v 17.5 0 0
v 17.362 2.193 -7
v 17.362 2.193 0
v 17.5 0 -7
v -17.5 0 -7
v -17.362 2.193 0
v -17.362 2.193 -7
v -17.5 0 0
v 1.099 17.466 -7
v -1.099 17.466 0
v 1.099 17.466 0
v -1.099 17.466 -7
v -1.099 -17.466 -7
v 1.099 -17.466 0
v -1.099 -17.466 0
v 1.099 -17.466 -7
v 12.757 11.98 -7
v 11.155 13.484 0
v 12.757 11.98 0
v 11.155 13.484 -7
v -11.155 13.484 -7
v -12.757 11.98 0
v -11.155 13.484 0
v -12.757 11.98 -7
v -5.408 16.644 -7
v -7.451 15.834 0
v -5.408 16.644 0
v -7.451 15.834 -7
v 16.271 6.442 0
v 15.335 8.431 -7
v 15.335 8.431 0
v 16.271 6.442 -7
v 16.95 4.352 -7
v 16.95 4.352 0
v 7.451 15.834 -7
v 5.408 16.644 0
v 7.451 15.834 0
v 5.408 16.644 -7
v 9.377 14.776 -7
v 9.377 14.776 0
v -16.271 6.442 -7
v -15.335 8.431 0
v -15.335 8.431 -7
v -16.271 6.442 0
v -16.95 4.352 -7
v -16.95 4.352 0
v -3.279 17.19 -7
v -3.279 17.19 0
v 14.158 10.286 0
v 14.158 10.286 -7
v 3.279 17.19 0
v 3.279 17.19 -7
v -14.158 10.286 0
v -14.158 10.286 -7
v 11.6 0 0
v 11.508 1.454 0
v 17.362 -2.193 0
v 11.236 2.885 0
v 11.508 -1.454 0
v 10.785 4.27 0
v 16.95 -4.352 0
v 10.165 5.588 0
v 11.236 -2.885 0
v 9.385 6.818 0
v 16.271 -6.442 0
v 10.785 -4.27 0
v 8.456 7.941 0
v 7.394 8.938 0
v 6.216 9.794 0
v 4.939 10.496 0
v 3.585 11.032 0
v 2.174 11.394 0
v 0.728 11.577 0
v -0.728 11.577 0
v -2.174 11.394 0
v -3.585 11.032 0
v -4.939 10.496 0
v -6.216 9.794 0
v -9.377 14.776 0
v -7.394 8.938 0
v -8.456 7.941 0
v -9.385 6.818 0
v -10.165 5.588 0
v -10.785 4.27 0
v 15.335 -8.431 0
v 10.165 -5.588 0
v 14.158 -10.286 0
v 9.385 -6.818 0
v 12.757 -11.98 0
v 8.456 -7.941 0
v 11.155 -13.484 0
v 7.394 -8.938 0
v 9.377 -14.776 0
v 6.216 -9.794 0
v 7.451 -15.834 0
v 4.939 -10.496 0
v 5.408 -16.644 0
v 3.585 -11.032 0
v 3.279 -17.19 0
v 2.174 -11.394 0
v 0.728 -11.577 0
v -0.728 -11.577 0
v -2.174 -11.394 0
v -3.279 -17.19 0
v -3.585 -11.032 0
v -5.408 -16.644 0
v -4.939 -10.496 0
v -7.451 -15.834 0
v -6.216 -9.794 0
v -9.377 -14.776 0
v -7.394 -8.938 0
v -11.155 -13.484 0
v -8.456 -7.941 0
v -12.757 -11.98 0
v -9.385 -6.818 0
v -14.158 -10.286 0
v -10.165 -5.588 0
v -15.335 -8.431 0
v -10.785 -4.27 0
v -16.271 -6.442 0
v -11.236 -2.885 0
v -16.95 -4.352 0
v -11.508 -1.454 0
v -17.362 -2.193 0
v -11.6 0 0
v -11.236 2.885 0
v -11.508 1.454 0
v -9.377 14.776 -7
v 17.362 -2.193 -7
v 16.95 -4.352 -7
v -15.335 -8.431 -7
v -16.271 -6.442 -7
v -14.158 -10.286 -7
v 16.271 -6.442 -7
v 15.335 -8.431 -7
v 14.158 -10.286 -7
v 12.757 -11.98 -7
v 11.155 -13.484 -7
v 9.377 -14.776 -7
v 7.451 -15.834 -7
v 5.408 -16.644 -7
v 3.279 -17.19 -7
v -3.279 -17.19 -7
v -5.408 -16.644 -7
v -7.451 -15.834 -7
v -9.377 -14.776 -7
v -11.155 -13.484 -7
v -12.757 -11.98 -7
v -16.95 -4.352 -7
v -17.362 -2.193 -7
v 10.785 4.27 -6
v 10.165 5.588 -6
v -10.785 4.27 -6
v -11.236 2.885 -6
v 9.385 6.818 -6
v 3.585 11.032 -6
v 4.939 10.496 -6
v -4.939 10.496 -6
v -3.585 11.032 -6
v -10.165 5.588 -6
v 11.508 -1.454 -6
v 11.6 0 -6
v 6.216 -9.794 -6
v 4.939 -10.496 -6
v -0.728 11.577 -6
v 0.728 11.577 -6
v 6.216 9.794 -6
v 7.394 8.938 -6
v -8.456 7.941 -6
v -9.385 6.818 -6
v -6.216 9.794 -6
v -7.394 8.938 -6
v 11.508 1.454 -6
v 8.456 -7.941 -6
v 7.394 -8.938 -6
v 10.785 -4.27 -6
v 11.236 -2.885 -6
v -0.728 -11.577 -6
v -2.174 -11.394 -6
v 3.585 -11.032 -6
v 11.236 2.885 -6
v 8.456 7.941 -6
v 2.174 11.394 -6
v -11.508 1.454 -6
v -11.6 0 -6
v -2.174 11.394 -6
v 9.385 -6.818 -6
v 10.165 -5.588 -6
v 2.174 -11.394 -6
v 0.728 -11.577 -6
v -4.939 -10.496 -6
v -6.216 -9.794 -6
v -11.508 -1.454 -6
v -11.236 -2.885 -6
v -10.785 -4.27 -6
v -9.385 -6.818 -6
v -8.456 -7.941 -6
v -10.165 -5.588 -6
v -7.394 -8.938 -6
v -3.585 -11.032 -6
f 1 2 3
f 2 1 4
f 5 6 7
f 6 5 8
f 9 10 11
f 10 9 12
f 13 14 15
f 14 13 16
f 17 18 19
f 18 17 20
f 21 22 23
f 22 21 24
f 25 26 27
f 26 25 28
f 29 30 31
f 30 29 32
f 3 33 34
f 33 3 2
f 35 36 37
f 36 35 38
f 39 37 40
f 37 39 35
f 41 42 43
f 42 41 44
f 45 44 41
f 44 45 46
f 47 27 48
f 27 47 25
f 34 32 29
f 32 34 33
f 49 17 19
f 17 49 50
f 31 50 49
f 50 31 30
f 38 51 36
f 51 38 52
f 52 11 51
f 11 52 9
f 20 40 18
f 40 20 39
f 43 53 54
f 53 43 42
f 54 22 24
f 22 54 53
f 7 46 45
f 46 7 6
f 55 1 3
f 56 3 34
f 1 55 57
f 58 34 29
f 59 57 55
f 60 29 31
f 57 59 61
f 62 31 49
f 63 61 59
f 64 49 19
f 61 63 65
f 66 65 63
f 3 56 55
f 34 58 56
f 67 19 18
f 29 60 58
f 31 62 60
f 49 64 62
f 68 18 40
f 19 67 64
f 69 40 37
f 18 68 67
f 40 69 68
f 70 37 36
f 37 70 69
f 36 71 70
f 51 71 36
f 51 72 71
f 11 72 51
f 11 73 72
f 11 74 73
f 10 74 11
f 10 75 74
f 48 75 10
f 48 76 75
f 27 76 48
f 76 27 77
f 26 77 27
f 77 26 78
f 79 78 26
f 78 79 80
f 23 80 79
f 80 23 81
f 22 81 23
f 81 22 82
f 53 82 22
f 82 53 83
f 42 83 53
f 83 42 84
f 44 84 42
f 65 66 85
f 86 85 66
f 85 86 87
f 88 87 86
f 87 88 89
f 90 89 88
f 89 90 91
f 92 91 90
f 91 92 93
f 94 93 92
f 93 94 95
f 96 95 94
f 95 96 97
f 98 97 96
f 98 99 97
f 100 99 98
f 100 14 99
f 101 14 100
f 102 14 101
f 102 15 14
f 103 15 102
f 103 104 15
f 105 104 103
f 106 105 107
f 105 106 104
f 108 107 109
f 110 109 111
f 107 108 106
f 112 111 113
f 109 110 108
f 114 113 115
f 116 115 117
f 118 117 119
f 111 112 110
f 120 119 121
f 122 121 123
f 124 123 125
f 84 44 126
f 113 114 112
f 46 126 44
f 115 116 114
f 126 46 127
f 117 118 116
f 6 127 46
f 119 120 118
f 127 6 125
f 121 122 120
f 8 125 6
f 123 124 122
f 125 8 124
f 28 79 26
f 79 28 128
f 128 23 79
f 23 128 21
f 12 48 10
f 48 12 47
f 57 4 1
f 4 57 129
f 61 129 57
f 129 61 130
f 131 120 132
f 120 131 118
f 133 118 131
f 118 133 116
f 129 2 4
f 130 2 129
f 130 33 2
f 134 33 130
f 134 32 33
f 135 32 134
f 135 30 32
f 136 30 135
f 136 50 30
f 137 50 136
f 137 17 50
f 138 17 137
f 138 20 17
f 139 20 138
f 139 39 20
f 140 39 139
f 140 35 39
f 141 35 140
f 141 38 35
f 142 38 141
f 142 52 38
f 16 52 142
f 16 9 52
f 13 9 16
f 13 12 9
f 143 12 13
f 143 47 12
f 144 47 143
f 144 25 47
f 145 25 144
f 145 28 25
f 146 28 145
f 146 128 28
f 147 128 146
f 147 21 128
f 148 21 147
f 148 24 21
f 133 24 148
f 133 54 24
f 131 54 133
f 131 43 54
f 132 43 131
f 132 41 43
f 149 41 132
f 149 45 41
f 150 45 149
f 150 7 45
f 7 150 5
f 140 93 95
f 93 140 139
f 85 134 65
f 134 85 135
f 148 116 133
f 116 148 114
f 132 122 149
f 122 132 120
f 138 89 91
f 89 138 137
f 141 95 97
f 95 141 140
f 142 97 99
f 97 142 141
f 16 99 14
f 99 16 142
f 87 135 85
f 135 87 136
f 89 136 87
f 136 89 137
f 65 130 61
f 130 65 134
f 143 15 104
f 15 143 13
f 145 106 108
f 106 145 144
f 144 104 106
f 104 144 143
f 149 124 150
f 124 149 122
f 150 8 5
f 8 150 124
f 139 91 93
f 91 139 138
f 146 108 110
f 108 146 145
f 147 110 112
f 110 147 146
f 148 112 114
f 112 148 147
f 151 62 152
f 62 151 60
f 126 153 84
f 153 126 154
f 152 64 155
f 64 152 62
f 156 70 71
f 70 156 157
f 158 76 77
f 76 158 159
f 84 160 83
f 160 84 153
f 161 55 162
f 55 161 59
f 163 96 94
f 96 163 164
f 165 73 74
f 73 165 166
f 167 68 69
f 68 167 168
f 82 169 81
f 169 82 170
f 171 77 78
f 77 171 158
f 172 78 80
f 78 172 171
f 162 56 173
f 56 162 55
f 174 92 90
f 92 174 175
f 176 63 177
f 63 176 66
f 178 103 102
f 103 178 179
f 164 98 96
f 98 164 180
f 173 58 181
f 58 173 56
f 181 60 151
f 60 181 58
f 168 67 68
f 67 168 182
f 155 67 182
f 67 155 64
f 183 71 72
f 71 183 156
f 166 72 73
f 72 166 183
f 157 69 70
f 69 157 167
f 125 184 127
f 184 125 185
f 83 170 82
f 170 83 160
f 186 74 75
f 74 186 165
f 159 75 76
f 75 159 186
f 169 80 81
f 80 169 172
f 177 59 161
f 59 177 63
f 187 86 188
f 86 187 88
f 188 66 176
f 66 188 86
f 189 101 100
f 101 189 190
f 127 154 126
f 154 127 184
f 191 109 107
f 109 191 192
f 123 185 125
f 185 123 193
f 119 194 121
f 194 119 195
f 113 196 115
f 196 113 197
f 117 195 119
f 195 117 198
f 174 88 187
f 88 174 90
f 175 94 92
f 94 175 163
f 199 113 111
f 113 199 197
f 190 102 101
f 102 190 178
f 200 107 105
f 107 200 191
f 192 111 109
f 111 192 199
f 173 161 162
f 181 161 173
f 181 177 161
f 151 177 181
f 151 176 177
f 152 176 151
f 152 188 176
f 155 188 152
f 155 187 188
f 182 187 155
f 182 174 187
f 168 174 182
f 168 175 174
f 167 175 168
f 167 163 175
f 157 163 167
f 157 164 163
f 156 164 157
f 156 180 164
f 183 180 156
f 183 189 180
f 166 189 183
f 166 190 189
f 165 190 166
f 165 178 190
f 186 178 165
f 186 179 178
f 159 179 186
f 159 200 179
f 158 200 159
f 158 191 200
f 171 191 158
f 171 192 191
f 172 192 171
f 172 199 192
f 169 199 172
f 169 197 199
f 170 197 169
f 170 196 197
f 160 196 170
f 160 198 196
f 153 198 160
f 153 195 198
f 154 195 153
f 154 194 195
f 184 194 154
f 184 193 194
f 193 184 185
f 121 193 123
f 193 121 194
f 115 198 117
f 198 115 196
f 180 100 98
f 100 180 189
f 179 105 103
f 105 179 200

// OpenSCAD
$fn = 50;


difference() {
	union() {
		translate(v = [0, 0, -7.0000000000]) {
			cylinder(h = 7, r = 17.5000000000);
		}
	}
	union() {
		#translate(v = [0, 0, -6.0000000000]) {
			cylinder(h = 6, r = 11.6000000000);
		}
	}
}
